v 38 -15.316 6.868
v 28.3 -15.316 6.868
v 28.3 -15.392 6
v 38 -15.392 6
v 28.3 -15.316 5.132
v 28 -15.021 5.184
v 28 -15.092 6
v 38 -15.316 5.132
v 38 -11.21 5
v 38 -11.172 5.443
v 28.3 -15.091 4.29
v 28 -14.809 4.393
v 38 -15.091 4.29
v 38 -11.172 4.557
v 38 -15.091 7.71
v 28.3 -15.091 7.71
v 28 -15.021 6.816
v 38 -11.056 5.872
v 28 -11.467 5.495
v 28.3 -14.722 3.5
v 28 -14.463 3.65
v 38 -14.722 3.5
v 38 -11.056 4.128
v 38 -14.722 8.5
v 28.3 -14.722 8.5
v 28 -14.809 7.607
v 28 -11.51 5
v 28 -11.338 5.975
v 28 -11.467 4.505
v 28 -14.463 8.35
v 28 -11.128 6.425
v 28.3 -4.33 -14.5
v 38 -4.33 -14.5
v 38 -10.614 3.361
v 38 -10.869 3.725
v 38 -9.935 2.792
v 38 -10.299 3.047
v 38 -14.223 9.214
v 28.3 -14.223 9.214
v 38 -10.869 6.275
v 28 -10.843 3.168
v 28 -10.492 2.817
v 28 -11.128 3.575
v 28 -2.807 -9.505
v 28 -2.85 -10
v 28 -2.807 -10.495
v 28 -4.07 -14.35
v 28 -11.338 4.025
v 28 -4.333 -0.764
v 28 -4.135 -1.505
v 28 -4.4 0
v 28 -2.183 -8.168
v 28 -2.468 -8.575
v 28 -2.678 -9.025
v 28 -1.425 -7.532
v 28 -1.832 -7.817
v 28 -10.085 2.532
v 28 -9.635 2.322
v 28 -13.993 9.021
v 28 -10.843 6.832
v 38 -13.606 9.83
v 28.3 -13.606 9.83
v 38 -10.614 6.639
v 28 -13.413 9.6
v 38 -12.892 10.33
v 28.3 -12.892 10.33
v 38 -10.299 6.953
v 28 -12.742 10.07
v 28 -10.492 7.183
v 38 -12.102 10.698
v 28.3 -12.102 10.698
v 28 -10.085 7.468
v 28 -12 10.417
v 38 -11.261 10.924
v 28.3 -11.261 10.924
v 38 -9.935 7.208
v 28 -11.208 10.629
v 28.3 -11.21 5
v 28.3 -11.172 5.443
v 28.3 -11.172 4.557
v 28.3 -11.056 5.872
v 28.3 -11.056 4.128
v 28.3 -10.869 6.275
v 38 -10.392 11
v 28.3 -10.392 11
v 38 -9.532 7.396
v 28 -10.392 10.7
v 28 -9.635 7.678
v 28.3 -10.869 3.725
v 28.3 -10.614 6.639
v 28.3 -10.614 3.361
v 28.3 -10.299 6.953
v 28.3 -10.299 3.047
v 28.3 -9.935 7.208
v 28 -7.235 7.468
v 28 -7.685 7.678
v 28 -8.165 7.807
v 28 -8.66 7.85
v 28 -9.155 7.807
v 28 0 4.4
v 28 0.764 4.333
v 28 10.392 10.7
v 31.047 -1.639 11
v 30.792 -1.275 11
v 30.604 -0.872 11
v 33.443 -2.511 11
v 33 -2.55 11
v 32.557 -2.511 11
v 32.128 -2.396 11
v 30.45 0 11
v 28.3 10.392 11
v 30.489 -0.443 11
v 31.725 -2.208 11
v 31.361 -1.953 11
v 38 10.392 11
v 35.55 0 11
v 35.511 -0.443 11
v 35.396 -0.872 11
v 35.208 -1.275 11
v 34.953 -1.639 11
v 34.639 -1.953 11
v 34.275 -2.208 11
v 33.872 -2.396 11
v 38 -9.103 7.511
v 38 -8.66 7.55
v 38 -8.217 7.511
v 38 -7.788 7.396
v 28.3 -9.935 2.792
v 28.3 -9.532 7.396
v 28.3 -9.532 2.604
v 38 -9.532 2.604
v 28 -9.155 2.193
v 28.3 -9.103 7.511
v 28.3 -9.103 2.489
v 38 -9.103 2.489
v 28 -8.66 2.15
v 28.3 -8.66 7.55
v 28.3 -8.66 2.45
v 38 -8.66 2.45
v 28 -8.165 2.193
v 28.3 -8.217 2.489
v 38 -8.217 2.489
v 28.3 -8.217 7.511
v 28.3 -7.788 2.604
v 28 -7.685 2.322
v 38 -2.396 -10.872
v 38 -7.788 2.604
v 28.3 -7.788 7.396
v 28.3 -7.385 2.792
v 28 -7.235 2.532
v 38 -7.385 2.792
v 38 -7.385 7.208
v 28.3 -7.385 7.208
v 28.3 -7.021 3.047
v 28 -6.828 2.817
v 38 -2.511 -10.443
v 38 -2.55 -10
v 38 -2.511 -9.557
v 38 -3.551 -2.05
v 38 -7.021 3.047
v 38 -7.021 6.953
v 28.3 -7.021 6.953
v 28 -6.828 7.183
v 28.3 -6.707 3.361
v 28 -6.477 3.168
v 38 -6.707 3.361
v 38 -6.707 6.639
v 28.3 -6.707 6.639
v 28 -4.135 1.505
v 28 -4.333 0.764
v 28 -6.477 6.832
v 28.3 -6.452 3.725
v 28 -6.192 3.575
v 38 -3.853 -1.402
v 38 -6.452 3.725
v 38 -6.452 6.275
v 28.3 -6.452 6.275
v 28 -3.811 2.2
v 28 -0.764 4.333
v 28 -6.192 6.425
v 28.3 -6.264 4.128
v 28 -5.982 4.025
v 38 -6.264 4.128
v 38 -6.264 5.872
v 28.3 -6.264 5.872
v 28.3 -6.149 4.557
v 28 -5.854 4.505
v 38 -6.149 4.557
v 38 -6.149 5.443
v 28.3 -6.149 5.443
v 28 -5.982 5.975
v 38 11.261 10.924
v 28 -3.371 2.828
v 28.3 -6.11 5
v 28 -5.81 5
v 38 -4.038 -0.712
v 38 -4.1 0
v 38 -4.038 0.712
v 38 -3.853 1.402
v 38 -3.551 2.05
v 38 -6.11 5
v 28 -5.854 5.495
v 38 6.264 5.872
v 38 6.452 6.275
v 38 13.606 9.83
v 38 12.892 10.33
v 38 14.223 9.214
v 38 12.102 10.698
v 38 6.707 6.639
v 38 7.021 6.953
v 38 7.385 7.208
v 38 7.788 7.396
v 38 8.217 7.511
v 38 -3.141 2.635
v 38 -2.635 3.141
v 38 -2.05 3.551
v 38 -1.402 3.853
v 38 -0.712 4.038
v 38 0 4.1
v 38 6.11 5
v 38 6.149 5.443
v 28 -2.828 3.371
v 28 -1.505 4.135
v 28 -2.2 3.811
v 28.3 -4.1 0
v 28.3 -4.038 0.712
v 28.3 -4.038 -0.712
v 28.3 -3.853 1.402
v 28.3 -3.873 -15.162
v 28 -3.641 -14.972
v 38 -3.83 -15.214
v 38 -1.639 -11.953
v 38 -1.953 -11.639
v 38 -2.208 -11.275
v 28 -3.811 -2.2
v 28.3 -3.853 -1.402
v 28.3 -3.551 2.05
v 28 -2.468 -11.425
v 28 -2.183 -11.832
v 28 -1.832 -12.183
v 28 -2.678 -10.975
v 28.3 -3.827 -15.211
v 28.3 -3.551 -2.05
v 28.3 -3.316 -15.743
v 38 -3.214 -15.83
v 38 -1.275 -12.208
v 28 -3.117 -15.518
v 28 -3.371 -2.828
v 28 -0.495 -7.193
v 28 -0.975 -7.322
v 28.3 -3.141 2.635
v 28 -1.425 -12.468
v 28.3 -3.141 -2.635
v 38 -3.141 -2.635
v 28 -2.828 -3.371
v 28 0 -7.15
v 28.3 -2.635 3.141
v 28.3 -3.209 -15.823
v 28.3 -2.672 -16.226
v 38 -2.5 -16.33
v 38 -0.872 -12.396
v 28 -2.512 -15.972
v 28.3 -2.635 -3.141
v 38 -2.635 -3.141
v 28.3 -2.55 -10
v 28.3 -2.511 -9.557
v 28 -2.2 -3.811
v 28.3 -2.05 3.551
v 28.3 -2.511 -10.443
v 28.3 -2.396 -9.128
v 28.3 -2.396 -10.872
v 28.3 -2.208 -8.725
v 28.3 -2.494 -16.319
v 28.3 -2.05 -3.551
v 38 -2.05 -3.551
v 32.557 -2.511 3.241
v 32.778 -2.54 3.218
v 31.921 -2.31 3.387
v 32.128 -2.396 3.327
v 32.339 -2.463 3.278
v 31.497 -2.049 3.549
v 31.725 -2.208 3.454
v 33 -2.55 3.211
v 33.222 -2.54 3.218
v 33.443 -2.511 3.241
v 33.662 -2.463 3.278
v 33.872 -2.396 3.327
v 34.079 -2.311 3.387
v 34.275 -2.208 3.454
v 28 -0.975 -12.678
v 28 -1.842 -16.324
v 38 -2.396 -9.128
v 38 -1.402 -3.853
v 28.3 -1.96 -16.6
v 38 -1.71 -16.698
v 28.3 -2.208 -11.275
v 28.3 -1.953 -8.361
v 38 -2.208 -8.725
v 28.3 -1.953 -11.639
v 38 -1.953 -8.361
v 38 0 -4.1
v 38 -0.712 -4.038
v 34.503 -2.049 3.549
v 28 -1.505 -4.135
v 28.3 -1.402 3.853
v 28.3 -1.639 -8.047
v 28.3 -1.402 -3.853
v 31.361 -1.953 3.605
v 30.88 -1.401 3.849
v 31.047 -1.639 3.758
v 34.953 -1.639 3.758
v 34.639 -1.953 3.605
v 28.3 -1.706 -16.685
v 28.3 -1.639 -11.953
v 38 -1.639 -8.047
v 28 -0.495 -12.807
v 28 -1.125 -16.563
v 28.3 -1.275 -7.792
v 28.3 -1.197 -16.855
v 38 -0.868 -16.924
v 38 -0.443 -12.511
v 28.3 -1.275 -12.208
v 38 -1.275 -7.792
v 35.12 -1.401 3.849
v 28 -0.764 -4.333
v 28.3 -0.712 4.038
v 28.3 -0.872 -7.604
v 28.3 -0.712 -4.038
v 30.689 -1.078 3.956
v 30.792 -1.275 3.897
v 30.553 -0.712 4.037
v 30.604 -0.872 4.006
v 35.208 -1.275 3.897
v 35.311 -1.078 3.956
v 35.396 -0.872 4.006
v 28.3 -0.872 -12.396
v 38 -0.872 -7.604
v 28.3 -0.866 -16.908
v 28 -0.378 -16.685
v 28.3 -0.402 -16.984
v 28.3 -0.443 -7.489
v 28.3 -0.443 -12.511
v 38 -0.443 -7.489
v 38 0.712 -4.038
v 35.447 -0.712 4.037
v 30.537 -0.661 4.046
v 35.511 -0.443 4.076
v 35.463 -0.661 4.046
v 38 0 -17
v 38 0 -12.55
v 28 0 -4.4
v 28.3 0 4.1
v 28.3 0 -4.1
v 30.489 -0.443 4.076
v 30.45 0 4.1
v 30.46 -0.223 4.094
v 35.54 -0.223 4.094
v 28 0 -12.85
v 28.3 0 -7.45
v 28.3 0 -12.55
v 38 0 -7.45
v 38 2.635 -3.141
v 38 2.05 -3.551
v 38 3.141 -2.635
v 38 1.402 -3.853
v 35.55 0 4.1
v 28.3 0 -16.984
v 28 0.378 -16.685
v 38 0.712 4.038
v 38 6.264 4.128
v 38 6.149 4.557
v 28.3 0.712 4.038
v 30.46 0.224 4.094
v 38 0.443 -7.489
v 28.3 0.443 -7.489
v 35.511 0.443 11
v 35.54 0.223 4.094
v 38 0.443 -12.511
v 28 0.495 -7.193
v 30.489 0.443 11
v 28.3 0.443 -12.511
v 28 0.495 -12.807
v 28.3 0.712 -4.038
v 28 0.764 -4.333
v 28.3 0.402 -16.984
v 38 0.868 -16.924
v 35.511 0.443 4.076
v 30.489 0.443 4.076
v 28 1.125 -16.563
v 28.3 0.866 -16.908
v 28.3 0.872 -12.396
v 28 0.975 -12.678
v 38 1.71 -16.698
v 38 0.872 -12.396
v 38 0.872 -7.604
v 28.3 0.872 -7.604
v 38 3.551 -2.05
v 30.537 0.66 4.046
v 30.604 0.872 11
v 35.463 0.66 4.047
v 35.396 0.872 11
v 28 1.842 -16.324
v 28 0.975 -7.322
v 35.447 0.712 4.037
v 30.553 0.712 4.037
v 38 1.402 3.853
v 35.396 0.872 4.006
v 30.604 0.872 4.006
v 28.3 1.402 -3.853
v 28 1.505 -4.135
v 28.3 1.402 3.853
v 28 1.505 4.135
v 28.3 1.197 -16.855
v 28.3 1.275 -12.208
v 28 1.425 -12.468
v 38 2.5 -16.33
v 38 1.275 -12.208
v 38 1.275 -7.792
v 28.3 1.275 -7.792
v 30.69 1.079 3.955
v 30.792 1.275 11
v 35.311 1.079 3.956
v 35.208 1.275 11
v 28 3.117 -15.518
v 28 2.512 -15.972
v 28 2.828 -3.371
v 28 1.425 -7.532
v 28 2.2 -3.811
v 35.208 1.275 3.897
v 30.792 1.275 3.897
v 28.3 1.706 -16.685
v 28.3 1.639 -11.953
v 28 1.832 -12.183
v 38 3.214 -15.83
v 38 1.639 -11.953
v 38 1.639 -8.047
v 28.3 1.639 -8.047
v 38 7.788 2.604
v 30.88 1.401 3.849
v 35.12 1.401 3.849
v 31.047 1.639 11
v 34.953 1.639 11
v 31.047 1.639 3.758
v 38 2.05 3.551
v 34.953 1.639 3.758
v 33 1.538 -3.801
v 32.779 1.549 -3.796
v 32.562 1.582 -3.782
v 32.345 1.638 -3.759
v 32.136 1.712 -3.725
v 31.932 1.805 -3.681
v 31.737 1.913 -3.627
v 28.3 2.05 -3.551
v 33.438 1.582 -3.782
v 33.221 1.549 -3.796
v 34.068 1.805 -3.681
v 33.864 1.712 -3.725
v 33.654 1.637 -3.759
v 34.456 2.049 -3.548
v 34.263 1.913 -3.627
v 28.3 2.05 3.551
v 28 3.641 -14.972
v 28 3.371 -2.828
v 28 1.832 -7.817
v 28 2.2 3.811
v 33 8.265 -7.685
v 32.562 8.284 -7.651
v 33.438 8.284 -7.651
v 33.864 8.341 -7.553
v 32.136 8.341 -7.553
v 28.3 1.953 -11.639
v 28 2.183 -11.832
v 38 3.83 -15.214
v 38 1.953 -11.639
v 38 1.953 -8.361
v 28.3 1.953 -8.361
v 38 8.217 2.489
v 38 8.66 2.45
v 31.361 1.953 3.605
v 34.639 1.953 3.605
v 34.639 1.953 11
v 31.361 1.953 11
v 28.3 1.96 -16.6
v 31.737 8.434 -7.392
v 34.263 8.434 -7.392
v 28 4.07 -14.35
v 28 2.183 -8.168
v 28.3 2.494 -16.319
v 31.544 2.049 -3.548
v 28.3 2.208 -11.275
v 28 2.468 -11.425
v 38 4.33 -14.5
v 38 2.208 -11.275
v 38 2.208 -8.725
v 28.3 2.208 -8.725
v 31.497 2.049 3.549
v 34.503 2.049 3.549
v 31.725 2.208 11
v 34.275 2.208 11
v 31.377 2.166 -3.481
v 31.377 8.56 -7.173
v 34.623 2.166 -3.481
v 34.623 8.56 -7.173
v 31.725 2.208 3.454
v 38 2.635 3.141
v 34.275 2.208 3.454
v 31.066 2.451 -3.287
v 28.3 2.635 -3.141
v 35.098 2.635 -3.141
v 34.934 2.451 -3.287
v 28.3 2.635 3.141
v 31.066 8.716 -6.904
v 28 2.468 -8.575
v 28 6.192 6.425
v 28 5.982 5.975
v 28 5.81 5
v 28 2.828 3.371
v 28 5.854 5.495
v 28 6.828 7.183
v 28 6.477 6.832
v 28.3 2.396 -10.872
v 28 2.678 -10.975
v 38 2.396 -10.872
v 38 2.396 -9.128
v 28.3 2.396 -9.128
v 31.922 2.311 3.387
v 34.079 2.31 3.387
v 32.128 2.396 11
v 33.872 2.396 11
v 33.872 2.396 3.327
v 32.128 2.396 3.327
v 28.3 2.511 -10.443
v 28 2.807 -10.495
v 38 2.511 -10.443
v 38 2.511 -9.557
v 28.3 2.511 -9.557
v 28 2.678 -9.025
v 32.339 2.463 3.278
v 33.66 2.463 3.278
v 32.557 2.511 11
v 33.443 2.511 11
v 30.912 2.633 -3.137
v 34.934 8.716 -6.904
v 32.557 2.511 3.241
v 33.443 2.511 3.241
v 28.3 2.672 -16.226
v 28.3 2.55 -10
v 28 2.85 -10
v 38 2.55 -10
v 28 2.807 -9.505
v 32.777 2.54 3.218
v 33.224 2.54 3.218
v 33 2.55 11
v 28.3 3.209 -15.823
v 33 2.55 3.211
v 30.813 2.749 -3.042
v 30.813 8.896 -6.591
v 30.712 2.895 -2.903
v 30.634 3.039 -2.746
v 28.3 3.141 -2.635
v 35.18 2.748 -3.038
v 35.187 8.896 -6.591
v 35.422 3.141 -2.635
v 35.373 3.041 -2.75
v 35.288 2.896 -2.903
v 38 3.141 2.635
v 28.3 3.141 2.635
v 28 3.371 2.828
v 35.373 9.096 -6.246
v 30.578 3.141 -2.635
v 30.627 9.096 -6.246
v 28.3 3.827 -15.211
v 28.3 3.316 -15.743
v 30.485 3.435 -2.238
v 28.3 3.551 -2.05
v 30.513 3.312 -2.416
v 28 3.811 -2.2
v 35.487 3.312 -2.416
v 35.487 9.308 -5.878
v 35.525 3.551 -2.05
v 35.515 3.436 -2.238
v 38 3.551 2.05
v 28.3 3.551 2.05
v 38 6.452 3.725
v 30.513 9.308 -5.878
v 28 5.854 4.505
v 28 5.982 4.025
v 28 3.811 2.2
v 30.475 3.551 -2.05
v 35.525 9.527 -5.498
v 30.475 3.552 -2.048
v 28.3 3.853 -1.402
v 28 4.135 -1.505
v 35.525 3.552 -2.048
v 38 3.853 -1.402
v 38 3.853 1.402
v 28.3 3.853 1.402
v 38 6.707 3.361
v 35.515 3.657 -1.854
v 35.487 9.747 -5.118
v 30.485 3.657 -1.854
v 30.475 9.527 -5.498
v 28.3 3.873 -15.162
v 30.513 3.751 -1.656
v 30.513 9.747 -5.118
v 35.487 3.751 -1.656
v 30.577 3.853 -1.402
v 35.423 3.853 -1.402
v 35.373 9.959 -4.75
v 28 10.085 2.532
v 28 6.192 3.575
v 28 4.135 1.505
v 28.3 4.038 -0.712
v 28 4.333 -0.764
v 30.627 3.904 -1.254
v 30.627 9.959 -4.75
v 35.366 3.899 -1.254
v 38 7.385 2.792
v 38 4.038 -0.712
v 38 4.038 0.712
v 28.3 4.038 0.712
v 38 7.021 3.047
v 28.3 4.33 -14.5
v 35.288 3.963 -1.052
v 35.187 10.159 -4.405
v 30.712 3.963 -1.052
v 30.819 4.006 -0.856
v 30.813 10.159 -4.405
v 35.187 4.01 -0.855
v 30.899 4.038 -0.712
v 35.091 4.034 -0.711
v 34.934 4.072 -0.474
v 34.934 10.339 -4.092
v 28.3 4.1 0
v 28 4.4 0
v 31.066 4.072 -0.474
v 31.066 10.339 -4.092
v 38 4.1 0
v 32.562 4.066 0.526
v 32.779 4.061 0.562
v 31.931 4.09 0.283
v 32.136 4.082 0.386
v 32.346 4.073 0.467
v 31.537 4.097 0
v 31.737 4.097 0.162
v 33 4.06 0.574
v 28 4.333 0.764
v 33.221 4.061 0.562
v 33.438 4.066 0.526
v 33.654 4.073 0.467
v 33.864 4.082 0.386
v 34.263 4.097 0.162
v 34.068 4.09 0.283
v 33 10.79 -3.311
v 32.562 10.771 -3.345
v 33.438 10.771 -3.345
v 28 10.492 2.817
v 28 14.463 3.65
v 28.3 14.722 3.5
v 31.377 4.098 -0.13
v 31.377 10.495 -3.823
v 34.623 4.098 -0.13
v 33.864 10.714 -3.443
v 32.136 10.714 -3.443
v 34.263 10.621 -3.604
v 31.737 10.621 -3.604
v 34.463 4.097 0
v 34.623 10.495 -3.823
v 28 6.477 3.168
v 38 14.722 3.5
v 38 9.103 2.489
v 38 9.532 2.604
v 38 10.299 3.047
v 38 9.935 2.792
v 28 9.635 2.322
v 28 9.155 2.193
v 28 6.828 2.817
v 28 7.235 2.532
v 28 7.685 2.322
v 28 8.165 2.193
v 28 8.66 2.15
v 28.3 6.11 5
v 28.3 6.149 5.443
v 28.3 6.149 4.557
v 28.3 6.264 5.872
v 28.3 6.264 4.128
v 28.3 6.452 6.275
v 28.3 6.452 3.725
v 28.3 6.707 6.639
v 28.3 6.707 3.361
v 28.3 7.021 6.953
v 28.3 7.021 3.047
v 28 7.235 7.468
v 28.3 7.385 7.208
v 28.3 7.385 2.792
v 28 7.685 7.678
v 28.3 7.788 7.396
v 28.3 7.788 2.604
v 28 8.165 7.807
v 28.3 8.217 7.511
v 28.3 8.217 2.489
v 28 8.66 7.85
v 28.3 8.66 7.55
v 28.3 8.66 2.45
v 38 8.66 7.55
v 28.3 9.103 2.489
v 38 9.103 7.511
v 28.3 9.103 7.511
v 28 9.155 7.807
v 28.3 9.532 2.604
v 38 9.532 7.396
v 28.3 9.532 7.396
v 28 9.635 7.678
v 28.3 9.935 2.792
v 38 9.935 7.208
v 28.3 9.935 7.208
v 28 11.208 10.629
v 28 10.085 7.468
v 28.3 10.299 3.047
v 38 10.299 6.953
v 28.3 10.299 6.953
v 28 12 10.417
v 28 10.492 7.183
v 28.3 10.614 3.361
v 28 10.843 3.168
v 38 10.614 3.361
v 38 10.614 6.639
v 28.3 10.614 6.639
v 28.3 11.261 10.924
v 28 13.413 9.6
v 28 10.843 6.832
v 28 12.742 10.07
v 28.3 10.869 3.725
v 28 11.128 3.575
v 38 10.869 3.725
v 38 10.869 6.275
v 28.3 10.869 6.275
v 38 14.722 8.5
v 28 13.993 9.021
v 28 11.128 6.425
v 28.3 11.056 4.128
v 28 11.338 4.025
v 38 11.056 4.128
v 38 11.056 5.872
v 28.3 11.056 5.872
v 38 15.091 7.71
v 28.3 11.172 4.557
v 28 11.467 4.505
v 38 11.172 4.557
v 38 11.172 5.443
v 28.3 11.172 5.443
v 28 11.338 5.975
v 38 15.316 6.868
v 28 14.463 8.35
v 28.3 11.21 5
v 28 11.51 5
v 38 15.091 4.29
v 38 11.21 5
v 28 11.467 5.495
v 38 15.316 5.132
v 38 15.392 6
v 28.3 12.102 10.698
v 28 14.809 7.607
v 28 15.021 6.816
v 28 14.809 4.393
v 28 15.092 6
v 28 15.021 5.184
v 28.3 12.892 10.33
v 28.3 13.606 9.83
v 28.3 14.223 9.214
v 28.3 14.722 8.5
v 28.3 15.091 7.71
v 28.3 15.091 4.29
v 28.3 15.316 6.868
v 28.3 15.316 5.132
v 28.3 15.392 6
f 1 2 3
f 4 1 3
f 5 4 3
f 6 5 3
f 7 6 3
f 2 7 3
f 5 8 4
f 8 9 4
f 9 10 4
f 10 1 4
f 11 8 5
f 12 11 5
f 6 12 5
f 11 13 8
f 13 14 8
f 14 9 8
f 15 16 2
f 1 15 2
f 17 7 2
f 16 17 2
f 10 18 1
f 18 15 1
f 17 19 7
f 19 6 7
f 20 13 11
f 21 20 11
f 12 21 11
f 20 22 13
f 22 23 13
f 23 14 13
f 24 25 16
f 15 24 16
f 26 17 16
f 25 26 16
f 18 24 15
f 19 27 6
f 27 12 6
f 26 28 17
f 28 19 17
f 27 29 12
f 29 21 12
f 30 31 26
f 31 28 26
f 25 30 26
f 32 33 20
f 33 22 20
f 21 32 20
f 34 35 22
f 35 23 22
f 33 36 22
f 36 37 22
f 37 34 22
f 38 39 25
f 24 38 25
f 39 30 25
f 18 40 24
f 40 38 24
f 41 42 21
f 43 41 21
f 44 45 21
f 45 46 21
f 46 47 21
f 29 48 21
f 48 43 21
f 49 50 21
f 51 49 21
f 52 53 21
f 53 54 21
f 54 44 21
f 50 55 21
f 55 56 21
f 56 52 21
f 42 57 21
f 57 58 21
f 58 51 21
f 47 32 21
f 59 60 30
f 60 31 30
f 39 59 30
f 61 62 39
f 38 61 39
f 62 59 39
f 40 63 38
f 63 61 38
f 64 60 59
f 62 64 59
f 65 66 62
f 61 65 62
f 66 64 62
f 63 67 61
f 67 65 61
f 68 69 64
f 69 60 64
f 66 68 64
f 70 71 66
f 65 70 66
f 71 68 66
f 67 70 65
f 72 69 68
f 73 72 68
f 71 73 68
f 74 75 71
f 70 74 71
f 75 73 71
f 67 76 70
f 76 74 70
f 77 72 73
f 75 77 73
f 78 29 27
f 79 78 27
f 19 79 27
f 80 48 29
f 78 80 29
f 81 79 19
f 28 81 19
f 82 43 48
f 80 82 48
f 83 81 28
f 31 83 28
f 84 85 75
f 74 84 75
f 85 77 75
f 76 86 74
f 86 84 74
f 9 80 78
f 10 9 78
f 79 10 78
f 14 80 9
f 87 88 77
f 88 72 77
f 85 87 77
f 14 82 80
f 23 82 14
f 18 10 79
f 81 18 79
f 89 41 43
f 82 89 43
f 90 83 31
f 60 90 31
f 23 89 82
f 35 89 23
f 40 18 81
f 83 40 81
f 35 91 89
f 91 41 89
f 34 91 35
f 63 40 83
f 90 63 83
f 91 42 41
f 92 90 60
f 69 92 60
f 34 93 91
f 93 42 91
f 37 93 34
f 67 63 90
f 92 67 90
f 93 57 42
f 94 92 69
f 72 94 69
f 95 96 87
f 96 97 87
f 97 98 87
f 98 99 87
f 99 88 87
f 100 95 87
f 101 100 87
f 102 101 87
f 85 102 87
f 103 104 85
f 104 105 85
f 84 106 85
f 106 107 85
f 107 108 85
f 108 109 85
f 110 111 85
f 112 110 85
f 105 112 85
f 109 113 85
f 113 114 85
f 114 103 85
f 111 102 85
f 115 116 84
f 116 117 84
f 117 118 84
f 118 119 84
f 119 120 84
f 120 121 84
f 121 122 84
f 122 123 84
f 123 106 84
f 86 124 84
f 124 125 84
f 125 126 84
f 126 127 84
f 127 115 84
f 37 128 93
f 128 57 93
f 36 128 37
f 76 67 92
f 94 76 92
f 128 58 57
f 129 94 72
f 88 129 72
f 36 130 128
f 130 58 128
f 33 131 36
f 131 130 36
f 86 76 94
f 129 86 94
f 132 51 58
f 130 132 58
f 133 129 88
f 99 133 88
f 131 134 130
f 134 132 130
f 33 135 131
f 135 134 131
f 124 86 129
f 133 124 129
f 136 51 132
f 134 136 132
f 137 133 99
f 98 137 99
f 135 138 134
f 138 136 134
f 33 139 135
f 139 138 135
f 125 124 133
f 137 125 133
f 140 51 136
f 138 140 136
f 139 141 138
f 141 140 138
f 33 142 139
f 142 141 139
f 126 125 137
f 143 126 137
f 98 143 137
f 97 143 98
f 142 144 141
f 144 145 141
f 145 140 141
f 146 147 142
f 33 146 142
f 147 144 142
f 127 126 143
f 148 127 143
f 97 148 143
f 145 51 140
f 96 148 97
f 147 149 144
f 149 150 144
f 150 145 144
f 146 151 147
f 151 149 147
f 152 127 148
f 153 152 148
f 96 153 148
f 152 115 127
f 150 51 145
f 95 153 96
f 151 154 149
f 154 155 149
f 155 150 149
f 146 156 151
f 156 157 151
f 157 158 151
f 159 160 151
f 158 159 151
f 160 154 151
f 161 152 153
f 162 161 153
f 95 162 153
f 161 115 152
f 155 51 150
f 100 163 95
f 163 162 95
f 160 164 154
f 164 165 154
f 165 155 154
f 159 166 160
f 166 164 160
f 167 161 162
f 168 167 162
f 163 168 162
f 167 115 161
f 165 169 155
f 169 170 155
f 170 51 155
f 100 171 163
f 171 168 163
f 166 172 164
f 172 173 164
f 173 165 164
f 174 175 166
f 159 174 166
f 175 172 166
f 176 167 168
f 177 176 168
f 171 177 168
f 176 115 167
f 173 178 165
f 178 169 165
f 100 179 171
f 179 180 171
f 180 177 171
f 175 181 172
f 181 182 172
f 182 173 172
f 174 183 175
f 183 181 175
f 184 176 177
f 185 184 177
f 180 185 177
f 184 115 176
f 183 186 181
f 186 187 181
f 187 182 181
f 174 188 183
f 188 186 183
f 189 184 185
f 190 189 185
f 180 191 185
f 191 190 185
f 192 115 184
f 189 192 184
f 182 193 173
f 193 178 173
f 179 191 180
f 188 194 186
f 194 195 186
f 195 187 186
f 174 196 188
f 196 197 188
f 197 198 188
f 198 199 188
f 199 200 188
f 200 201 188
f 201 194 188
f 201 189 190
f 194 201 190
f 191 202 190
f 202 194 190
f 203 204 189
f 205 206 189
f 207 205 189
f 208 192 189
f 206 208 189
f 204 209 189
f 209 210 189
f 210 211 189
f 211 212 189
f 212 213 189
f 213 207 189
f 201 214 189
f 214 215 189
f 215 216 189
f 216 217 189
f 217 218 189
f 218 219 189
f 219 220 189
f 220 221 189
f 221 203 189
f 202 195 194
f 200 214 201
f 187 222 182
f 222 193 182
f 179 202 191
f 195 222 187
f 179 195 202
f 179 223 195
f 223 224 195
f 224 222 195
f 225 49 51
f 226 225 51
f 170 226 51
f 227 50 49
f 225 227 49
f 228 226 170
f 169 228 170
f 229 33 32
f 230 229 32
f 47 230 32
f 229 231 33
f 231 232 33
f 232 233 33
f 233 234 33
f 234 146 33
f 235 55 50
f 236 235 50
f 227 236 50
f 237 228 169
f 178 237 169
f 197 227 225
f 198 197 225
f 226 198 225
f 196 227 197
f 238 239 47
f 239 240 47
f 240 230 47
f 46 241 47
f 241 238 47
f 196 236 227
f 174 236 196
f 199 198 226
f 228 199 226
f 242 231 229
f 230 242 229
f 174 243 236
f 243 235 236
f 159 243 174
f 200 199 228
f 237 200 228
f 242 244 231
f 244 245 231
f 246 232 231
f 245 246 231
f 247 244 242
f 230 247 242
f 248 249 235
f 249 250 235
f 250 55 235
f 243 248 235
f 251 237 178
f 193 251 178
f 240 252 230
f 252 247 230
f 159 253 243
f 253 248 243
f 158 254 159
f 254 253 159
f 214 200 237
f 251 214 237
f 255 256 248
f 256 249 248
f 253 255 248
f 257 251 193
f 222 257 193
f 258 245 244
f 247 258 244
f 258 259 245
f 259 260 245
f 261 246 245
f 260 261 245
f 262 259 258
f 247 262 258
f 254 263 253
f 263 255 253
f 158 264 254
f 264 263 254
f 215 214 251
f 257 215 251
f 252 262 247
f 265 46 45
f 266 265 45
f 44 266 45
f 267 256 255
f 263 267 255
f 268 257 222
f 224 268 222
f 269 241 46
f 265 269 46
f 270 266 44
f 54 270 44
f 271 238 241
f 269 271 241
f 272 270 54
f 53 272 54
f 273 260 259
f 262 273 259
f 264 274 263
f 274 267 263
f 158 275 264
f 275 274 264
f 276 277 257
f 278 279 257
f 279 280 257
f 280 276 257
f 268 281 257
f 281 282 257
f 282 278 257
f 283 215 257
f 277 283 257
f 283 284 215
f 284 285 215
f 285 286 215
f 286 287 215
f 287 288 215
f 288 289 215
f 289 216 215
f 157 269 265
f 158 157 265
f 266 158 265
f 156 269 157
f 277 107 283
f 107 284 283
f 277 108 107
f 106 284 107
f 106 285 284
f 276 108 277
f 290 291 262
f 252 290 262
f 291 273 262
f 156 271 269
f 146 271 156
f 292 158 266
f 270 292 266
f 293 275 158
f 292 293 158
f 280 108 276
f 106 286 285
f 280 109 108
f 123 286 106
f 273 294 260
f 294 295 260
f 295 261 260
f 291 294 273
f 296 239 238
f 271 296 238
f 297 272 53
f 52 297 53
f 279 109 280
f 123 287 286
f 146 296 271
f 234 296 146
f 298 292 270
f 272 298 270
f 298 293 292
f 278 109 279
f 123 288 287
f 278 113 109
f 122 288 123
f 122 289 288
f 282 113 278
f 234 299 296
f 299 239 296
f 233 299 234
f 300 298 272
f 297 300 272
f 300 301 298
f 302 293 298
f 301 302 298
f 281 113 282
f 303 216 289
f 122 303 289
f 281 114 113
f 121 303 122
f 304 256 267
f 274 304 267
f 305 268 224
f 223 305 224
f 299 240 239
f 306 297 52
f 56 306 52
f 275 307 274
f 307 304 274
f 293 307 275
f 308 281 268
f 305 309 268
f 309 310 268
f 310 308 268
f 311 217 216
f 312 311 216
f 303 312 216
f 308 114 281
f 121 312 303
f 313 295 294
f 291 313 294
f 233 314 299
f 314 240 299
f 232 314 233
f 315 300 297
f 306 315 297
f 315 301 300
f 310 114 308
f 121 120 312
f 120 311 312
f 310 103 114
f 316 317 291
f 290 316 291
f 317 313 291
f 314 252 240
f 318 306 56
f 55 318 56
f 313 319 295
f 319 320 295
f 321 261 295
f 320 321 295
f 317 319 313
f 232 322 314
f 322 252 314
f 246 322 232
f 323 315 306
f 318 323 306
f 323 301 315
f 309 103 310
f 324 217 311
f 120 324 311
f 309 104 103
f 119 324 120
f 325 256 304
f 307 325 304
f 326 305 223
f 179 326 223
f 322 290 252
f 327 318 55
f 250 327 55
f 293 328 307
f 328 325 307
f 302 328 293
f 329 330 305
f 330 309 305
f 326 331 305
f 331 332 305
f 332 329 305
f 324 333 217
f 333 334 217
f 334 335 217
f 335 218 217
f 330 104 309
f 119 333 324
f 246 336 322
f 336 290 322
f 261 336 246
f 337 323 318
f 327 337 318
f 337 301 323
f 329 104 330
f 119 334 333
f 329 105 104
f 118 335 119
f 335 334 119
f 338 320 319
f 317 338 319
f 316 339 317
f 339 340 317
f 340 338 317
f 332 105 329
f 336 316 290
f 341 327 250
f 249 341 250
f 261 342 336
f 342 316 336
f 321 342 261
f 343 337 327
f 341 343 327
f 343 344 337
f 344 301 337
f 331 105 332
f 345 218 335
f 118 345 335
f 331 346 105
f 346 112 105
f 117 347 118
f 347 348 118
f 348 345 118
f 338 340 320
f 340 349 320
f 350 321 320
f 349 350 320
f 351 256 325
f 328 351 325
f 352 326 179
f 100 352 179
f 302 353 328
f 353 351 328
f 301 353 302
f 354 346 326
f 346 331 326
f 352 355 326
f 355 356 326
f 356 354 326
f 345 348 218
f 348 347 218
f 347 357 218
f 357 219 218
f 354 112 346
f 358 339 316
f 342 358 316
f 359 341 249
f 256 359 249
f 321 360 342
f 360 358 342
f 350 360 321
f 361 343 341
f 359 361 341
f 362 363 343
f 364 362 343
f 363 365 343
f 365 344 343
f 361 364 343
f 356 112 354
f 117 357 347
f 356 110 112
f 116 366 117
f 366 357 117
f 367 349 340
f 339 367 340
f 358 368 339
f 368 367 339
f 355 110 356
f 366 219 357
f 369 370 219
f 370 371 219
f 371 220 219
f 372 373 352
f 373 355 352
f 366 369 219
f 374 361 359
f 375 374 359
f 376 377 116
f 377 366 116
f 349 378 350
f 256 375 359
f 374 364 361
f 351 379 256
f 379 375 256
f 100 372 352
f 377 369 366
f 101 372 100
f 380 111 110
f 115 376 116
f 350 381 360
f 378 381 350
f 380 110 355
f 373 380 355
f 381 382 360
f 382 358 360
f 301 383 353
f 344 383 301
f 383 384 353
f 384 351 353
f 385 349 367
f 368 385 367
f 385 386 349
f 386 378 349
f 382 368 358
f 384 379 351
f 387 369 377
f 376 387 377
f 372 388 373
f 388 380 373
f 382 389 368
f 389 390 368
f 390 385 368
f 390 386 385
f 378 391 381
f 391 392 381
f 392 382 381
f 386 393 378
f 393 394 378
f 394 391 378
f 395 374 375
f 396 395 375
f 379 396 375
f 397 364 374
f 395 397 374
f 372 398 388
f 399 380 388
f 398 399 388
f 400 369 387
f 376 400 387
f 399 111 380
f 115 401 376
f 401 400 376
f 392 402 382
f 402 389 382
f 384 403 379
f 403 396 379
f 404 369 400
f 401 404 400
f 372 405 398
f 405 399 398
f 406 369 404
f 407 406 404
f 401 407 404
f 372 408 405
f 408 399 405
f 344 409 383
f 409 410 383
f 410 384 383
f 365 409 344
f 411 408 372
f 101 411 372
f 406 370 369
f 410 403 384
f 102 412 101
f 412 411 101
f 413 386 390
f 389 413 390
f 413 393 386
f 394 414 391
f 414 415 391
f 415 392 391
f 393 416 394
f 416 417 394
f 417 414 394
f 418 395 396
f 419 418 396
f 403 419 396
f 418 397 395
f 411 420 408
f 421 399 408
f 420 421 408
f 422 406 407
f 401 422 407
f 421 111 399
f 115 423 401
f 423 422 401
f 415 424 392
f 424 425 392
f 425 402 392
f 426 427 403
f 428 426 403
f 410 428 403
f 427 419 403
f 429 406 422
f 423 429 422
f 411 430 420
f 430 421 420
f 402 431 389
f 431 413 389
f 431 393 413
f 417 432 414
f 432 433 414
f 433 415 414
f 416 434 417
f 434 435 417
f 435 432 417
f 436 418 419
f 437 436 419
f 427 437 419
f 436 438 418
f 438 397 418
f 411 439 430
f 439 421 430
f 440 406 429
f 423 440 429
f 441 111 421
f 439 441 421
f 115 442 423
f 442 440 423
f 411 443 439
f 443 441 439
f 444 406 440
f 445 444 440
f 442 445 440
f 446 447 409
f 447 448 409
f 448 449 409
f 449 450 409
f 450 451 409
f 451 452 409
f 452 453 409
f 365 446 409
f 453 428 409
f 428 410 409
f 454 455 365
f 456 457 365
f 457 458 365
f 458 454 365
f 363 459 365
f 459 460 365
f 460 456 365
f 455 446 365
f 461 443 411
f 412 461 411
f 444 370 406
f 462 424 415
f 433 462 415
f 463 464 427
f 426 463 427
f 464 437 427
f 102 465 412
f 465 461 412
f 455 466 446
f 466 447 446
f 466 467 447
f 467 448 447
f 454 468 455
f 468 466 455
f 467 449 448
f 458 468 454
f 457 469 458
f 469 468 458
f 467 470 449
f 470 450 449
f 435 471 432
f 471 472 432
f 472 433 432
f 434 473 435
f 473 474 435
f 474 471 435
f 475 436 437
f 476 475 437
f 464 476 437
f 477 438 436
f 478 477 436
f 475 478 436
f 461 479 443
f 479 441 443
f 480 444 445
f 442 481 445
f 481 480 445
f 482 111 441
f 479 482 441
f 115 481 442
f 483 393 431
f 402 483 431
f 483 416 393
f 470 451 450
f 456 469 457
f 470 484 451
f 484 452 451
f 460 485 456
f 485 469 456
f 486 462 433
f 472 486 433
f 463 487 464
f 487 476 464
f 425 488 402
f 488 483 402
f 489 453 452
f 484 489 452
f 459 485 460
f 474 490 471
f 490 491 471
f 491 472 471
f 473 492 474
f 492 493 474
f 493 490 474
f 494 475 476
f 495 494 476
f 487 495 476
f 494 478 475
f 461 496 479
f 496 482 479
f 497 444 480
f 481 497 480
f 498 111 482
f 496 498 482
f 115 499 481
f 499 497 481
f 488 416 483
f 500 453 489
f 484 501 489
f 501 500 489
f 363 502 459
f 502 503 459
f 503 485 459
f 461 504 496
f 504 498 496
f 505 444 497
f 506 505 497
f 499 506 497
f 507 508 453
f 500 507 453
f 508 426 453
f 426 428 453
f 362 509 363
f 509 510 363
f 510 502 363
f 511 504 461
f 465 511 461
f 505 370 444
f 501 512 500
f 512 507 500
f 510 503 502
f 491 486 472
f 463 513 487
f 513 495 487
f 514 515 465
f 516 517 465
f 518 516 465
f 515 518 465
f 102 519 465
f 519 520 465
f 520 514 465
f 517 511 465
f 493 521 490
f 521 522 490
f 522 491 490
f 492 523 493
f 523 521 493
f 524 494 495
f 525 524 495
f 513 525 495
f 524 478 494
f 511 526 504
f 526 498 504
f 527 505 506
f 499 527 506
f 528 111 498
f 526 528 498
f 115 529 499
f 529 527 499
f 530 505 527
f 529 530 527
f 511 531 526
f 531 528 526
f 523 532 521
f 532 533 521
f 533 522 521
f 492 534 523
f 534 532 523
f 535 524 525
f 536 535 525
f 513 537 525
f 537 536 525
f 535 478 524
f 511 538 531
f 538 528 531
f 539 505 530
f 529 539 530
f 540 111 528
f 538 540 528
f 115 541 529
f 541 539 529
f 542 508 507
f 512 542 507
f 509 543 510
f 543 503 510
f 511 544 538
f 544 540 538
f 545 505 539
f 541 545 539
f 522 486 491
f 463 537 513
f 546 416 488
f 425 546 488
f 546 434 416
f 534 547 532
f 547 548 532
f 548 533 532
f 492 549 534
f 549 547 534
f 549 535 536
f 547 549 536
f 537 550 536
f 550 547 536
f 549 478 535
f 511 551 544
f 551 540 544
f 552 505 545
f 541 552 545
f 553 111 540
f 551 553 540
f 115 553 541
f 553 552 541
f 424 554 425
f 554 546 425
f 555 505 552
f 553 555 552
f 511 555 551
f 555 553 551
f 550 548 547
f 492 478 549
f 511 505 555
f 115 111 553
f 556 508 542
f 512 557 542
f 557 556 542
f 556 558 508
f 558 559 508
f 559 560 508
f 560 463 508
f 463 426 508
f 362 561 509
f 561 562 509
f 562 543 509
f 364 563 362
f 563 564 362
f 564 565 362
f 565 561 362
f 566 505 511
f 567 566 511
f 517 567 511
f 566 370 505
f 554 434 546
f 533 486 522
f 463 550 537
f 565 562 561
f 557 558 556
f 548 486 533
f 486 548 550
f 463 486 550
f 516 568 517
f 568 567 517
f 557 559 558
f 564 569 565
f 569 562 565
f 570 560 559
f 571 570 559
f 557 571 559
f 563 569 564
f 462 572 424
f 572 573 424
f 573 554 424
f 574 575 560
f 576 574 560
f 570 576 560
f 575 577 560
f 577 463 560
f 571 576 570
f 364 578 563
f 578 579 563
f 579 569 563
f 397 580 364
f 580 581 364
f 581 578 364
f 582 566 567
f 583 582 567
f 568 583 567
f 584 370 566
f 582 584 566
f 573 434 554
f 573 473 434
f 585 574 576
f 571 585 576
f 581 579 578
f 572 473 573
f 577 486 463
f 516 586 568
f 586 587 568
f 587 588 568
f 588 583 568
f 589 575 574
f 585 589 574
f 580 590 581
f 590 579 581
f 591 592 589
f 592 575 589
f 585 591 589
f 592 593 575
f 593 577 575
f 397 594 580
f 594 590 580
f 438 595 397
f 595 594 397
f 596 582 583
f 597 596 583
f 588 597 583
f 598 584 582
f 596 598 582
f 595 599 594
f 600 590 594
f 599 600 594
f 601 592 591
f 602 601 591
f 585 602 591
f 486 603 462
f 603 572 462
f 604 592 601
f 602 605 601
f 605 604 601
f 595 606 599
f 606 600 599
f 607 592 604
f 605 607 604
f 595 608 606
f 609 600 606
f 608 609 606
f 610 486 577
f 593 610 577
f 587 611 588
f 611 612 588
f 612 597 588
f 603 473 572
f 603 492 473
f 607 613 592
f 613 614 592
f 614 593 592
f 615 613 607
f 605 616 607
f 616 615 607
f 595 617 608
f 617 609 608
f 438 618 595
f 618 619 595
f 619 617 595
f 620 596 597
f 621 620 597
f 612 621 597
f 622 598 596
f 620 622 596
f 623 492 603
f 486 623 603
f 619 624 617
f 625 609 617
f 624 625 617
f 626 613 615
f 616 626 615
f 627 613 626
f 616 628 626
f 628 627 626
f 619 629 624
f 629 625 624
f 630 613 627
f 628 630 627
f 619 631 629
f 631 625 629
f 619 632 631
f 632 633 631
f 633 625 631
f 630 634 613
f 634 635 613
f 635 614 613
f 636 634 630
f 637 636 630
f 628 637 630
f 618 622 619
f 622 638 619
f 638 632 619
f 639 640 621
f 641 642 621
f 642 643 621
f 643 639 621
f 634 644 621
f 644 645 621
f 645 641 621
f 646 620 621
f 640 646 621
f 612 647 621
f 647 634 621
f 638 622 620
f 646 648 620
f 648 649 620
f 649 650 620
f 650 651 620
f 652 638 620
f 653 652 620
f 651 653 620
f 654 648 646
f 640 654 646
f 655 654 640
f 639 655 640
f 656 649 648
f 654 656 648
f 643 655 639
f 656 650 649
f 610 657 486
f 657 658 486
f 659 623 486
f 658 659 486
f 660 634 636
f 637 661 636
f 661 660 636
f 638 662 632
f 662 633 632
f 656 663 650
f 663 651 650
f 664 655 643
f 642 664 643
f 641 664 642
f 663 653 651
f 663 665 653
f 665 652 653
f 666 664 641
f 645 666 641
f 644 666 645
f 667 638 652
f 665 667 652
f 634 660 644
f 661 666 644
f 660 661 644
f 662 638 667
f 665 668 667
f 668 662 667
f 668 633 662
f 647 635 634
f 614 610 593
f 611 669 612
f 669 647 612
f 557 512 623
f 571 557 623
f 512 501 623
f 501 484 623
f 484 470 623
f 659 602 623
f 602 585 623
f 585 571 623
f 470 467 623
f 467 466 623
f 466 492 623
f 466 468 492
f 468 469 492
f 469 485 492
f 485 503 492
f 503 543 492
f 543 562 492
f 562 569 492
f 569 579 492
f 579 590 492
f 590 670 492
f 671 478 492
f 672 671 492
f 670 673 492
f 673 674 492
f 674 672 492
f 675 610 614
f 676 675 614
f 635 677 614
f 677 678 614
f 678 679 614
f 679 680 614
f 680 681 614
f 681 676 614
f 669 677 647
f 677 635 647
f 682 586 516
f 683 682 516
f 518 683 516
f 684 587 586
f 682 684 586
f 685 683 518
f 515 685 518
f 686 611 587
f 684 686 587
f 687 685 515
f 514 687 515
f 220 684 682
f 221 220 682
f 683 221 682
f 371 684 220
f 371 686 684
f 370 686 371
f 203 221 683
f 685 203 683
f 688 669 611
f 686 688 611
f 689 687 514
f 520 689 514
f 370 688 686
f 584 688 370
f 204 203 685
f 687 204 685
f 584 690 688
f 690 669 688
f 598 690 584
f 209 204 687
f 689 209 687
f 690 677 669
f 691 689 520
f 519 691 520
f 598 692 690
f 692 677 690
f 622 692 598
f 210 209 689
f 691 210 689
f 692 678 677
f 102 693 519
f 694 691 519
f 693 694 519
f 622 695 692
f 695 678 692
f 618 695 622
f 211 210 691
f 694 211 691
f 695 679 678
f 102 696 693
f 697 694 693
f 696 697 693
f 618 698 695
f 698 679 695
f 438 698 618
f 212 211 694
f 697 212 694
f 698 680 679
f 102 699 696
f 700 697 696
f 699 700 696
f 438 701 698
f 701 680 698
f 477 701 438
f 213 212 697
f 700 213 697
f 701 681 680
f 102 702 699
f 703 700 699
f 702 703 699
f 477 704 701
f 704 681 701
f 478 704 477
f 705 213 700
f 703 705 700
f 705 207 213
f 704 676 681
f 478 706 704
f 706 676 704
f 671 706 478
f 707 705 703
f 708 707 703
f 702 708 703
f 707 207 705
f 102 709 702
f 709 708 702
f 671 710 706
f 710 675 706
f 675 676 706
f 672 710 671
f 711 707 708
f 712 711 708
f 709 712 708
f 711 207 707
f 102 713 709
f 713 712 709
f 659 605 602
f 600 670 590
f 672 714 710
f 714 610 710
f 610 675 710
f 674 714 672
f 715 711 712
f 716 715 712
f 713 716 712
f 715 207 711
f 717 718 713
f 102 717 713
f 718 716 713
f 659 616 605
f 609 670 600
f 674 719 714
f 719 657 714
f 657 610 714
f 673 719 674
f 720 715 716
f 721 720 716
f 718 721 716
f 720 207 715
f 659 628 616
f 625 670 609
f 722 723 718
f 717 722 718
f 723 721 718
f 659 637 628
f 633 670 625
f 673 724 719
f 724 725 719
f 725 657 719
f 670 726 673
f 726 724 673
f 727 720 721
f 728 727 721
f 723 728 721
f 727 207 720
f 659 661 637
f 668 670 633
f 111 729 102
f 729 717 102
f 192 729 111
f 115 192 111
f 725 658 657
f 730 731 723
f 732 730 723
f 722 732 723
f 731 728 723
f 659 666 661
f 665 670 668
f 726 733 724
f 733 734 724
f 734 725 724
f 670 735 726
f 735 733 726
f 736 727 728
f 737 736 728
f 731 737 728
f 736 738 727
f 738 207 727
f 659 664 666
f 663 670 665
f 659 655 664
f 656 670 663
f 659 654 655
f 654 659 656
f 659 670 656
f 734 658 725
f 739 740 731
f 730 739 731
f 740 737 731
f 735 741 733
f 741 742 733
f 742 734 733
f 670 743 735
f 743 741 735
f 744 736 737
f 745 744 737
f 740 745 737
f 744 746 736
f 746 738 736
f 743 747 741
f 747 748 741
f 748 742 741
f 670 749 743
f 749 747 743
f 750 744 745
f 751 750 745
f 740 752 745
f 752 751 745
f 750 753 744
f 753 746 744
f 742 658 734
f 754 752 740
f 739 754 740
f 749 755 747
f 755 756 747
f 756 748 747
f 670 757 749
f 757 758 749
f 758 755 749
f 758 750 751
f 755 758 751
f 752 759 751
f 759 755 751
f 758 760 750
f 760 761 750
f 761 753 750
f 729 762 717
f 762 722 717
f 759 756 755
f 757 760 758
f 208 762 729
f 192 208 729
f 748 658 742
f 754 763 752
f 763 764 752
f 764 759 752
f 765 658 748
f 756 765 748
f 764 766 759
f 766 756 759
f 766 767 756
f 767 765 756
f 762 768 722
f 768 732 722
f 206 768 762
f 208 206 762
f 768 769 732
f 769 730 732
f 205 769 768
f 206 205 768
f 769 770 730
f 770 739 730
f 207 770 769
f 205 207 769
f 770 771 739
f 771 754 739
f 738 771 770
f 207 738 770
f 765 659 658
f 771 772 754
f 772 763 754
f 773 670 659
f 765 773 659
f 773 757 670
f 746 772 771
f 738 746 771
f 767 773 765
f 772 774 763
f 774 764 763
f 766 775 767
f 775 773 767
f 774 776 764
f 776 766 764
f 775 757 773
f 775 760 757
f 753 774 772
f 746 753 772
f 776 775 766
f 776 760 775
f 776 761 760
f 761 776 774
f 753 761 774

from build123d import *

# Parameters (mm, degrees)
BOSS_EXTRUDE1_DEPTH             = 10
F_5_1_5_1_DIAMETER_HOLE1_D      = 5.1
F_8_2_8_2_DIAMETER_HOLE1_D      = 8.2
F_5_1_5_1_DIAMETER_HOLE2_REACH  = 51.648
F_5_1_5_1_DIAMETER_HOLE2_BORE_R = 2.55
CHAMFER1_SIZE                   = 0.3
SKETCH8_R                       = 2.525
CUT_EXTRUDE1_DEPTH              = 8


with BuildPart() as part:
    # Sketch1 → Boss-Extrude1 (new body)
    with BuildSketch(Plane(origin=(28, 0, 0), x_dir=(0, -1, 0), z_dir=(-1, 0, 0))):
        with BuildLine():
            Line((-14.722431864, 3.5), (-4.330127019, -14.5))
            ThreePointArc((-4.330127019, -14.5), (0, -17), (4.330127019, -14.5))
            Line((4.330127019, -14.5), (14.722431864, 3.5))
            ThreePointArc((14.722431864, 3.5), (14.722431864, 8.5), (10.392304845, 11))
            Line((10.392304845, 11), (-10.392304845, 11))
            ThreePointArc((-10.392304845, 11), (-14.722431864, 8.5), (-14.722431864, 3.5))
        make_face()
    extrude(amount=-BOSS_EXTRUDE1_DEPTH)

    # Ø5.1 (5.1) Diameter Hole1 (through all)
    with Locations(Plane.ZY.offset(-28)):
        with Locations((-10, 0), (5, 8.660254038), (5, -8.660254038)):
            Hole(F_5_1_5_1_DIAMETER_HOLE1_D / 2)

    # Ø8.2 (8.2) Diameter Hole1 (through all)
    with Locations(Plane.ZY.offset(-28)):
        with Locations((0, 0)):
            Hole(F_8_2_8_2_DIAMETER_HOLE1_D / 2)

    # Ø5.1 (5.1) Diameter Hole2 bore → Ø5.1 (5.1) Diameter Hole2 (cut, up to next)
    with BuildSketch(Plane.XY.offset(11), mode=Mode.PRIVATE) as f_5_1_5_1_diameter_hole2_sk1:
        with Locations((33, 0)):
            Circle(F_5_1_5_1_DIAMETER_HOLE2_BORE_R)
    f_5_1_5_1_diameter_hole2_tool1 = extrude(f_5_1_5_1_diameter_hole2_sk1.sketch, amount=-F_5_1_5_1_DIAMETER_HOLE2_REACH, mode=Mode.PRIVATE) & part.part
    add(f_5_1_5_1_diameter_hole2_tool1.solids().sort_by_distance((33, 0, 11))[0], mode=Mode.SUBTRACT)

    # Chamfer1
    chamfer1_edges = [part.edges().sort_by_distance(p)[0] for p in [
        (28, -8.660254038, 7.55),
        (28, 8.660254038, 7.55),
        (28, 0, -7.45),
        (28, 0, 4.1),
        (28, 0, 11),
        (28, -14.722431864, 8.5),
        (28, -9.526279442, -5.5),
        (28, 0, -17),
        (28, 9.526279442, -5.5),
        (28, 14.722431864, 8.5),
    ]]
    chamfer(chamfer1_edges, length=CHAMFER1_SIZE)

    # Sketch8 → Cut-Extrude1 (cut)
    with BuildSketch(Plane(origin=(0, 9.526279442, -5.5), x_dir=(1, 0, 0), z_dir=(0, 0.8660254037844384, -0.5000000000000006))):
        with Locations(Location((33, -0.002304845, 0), (0, 0, 270))):
            Circle(SKETCH8_R)
    extrude(amount=-CUT_EXTRUDE1_DEPTH, mode=Mode.SUBTRACT)


solid = part.part
